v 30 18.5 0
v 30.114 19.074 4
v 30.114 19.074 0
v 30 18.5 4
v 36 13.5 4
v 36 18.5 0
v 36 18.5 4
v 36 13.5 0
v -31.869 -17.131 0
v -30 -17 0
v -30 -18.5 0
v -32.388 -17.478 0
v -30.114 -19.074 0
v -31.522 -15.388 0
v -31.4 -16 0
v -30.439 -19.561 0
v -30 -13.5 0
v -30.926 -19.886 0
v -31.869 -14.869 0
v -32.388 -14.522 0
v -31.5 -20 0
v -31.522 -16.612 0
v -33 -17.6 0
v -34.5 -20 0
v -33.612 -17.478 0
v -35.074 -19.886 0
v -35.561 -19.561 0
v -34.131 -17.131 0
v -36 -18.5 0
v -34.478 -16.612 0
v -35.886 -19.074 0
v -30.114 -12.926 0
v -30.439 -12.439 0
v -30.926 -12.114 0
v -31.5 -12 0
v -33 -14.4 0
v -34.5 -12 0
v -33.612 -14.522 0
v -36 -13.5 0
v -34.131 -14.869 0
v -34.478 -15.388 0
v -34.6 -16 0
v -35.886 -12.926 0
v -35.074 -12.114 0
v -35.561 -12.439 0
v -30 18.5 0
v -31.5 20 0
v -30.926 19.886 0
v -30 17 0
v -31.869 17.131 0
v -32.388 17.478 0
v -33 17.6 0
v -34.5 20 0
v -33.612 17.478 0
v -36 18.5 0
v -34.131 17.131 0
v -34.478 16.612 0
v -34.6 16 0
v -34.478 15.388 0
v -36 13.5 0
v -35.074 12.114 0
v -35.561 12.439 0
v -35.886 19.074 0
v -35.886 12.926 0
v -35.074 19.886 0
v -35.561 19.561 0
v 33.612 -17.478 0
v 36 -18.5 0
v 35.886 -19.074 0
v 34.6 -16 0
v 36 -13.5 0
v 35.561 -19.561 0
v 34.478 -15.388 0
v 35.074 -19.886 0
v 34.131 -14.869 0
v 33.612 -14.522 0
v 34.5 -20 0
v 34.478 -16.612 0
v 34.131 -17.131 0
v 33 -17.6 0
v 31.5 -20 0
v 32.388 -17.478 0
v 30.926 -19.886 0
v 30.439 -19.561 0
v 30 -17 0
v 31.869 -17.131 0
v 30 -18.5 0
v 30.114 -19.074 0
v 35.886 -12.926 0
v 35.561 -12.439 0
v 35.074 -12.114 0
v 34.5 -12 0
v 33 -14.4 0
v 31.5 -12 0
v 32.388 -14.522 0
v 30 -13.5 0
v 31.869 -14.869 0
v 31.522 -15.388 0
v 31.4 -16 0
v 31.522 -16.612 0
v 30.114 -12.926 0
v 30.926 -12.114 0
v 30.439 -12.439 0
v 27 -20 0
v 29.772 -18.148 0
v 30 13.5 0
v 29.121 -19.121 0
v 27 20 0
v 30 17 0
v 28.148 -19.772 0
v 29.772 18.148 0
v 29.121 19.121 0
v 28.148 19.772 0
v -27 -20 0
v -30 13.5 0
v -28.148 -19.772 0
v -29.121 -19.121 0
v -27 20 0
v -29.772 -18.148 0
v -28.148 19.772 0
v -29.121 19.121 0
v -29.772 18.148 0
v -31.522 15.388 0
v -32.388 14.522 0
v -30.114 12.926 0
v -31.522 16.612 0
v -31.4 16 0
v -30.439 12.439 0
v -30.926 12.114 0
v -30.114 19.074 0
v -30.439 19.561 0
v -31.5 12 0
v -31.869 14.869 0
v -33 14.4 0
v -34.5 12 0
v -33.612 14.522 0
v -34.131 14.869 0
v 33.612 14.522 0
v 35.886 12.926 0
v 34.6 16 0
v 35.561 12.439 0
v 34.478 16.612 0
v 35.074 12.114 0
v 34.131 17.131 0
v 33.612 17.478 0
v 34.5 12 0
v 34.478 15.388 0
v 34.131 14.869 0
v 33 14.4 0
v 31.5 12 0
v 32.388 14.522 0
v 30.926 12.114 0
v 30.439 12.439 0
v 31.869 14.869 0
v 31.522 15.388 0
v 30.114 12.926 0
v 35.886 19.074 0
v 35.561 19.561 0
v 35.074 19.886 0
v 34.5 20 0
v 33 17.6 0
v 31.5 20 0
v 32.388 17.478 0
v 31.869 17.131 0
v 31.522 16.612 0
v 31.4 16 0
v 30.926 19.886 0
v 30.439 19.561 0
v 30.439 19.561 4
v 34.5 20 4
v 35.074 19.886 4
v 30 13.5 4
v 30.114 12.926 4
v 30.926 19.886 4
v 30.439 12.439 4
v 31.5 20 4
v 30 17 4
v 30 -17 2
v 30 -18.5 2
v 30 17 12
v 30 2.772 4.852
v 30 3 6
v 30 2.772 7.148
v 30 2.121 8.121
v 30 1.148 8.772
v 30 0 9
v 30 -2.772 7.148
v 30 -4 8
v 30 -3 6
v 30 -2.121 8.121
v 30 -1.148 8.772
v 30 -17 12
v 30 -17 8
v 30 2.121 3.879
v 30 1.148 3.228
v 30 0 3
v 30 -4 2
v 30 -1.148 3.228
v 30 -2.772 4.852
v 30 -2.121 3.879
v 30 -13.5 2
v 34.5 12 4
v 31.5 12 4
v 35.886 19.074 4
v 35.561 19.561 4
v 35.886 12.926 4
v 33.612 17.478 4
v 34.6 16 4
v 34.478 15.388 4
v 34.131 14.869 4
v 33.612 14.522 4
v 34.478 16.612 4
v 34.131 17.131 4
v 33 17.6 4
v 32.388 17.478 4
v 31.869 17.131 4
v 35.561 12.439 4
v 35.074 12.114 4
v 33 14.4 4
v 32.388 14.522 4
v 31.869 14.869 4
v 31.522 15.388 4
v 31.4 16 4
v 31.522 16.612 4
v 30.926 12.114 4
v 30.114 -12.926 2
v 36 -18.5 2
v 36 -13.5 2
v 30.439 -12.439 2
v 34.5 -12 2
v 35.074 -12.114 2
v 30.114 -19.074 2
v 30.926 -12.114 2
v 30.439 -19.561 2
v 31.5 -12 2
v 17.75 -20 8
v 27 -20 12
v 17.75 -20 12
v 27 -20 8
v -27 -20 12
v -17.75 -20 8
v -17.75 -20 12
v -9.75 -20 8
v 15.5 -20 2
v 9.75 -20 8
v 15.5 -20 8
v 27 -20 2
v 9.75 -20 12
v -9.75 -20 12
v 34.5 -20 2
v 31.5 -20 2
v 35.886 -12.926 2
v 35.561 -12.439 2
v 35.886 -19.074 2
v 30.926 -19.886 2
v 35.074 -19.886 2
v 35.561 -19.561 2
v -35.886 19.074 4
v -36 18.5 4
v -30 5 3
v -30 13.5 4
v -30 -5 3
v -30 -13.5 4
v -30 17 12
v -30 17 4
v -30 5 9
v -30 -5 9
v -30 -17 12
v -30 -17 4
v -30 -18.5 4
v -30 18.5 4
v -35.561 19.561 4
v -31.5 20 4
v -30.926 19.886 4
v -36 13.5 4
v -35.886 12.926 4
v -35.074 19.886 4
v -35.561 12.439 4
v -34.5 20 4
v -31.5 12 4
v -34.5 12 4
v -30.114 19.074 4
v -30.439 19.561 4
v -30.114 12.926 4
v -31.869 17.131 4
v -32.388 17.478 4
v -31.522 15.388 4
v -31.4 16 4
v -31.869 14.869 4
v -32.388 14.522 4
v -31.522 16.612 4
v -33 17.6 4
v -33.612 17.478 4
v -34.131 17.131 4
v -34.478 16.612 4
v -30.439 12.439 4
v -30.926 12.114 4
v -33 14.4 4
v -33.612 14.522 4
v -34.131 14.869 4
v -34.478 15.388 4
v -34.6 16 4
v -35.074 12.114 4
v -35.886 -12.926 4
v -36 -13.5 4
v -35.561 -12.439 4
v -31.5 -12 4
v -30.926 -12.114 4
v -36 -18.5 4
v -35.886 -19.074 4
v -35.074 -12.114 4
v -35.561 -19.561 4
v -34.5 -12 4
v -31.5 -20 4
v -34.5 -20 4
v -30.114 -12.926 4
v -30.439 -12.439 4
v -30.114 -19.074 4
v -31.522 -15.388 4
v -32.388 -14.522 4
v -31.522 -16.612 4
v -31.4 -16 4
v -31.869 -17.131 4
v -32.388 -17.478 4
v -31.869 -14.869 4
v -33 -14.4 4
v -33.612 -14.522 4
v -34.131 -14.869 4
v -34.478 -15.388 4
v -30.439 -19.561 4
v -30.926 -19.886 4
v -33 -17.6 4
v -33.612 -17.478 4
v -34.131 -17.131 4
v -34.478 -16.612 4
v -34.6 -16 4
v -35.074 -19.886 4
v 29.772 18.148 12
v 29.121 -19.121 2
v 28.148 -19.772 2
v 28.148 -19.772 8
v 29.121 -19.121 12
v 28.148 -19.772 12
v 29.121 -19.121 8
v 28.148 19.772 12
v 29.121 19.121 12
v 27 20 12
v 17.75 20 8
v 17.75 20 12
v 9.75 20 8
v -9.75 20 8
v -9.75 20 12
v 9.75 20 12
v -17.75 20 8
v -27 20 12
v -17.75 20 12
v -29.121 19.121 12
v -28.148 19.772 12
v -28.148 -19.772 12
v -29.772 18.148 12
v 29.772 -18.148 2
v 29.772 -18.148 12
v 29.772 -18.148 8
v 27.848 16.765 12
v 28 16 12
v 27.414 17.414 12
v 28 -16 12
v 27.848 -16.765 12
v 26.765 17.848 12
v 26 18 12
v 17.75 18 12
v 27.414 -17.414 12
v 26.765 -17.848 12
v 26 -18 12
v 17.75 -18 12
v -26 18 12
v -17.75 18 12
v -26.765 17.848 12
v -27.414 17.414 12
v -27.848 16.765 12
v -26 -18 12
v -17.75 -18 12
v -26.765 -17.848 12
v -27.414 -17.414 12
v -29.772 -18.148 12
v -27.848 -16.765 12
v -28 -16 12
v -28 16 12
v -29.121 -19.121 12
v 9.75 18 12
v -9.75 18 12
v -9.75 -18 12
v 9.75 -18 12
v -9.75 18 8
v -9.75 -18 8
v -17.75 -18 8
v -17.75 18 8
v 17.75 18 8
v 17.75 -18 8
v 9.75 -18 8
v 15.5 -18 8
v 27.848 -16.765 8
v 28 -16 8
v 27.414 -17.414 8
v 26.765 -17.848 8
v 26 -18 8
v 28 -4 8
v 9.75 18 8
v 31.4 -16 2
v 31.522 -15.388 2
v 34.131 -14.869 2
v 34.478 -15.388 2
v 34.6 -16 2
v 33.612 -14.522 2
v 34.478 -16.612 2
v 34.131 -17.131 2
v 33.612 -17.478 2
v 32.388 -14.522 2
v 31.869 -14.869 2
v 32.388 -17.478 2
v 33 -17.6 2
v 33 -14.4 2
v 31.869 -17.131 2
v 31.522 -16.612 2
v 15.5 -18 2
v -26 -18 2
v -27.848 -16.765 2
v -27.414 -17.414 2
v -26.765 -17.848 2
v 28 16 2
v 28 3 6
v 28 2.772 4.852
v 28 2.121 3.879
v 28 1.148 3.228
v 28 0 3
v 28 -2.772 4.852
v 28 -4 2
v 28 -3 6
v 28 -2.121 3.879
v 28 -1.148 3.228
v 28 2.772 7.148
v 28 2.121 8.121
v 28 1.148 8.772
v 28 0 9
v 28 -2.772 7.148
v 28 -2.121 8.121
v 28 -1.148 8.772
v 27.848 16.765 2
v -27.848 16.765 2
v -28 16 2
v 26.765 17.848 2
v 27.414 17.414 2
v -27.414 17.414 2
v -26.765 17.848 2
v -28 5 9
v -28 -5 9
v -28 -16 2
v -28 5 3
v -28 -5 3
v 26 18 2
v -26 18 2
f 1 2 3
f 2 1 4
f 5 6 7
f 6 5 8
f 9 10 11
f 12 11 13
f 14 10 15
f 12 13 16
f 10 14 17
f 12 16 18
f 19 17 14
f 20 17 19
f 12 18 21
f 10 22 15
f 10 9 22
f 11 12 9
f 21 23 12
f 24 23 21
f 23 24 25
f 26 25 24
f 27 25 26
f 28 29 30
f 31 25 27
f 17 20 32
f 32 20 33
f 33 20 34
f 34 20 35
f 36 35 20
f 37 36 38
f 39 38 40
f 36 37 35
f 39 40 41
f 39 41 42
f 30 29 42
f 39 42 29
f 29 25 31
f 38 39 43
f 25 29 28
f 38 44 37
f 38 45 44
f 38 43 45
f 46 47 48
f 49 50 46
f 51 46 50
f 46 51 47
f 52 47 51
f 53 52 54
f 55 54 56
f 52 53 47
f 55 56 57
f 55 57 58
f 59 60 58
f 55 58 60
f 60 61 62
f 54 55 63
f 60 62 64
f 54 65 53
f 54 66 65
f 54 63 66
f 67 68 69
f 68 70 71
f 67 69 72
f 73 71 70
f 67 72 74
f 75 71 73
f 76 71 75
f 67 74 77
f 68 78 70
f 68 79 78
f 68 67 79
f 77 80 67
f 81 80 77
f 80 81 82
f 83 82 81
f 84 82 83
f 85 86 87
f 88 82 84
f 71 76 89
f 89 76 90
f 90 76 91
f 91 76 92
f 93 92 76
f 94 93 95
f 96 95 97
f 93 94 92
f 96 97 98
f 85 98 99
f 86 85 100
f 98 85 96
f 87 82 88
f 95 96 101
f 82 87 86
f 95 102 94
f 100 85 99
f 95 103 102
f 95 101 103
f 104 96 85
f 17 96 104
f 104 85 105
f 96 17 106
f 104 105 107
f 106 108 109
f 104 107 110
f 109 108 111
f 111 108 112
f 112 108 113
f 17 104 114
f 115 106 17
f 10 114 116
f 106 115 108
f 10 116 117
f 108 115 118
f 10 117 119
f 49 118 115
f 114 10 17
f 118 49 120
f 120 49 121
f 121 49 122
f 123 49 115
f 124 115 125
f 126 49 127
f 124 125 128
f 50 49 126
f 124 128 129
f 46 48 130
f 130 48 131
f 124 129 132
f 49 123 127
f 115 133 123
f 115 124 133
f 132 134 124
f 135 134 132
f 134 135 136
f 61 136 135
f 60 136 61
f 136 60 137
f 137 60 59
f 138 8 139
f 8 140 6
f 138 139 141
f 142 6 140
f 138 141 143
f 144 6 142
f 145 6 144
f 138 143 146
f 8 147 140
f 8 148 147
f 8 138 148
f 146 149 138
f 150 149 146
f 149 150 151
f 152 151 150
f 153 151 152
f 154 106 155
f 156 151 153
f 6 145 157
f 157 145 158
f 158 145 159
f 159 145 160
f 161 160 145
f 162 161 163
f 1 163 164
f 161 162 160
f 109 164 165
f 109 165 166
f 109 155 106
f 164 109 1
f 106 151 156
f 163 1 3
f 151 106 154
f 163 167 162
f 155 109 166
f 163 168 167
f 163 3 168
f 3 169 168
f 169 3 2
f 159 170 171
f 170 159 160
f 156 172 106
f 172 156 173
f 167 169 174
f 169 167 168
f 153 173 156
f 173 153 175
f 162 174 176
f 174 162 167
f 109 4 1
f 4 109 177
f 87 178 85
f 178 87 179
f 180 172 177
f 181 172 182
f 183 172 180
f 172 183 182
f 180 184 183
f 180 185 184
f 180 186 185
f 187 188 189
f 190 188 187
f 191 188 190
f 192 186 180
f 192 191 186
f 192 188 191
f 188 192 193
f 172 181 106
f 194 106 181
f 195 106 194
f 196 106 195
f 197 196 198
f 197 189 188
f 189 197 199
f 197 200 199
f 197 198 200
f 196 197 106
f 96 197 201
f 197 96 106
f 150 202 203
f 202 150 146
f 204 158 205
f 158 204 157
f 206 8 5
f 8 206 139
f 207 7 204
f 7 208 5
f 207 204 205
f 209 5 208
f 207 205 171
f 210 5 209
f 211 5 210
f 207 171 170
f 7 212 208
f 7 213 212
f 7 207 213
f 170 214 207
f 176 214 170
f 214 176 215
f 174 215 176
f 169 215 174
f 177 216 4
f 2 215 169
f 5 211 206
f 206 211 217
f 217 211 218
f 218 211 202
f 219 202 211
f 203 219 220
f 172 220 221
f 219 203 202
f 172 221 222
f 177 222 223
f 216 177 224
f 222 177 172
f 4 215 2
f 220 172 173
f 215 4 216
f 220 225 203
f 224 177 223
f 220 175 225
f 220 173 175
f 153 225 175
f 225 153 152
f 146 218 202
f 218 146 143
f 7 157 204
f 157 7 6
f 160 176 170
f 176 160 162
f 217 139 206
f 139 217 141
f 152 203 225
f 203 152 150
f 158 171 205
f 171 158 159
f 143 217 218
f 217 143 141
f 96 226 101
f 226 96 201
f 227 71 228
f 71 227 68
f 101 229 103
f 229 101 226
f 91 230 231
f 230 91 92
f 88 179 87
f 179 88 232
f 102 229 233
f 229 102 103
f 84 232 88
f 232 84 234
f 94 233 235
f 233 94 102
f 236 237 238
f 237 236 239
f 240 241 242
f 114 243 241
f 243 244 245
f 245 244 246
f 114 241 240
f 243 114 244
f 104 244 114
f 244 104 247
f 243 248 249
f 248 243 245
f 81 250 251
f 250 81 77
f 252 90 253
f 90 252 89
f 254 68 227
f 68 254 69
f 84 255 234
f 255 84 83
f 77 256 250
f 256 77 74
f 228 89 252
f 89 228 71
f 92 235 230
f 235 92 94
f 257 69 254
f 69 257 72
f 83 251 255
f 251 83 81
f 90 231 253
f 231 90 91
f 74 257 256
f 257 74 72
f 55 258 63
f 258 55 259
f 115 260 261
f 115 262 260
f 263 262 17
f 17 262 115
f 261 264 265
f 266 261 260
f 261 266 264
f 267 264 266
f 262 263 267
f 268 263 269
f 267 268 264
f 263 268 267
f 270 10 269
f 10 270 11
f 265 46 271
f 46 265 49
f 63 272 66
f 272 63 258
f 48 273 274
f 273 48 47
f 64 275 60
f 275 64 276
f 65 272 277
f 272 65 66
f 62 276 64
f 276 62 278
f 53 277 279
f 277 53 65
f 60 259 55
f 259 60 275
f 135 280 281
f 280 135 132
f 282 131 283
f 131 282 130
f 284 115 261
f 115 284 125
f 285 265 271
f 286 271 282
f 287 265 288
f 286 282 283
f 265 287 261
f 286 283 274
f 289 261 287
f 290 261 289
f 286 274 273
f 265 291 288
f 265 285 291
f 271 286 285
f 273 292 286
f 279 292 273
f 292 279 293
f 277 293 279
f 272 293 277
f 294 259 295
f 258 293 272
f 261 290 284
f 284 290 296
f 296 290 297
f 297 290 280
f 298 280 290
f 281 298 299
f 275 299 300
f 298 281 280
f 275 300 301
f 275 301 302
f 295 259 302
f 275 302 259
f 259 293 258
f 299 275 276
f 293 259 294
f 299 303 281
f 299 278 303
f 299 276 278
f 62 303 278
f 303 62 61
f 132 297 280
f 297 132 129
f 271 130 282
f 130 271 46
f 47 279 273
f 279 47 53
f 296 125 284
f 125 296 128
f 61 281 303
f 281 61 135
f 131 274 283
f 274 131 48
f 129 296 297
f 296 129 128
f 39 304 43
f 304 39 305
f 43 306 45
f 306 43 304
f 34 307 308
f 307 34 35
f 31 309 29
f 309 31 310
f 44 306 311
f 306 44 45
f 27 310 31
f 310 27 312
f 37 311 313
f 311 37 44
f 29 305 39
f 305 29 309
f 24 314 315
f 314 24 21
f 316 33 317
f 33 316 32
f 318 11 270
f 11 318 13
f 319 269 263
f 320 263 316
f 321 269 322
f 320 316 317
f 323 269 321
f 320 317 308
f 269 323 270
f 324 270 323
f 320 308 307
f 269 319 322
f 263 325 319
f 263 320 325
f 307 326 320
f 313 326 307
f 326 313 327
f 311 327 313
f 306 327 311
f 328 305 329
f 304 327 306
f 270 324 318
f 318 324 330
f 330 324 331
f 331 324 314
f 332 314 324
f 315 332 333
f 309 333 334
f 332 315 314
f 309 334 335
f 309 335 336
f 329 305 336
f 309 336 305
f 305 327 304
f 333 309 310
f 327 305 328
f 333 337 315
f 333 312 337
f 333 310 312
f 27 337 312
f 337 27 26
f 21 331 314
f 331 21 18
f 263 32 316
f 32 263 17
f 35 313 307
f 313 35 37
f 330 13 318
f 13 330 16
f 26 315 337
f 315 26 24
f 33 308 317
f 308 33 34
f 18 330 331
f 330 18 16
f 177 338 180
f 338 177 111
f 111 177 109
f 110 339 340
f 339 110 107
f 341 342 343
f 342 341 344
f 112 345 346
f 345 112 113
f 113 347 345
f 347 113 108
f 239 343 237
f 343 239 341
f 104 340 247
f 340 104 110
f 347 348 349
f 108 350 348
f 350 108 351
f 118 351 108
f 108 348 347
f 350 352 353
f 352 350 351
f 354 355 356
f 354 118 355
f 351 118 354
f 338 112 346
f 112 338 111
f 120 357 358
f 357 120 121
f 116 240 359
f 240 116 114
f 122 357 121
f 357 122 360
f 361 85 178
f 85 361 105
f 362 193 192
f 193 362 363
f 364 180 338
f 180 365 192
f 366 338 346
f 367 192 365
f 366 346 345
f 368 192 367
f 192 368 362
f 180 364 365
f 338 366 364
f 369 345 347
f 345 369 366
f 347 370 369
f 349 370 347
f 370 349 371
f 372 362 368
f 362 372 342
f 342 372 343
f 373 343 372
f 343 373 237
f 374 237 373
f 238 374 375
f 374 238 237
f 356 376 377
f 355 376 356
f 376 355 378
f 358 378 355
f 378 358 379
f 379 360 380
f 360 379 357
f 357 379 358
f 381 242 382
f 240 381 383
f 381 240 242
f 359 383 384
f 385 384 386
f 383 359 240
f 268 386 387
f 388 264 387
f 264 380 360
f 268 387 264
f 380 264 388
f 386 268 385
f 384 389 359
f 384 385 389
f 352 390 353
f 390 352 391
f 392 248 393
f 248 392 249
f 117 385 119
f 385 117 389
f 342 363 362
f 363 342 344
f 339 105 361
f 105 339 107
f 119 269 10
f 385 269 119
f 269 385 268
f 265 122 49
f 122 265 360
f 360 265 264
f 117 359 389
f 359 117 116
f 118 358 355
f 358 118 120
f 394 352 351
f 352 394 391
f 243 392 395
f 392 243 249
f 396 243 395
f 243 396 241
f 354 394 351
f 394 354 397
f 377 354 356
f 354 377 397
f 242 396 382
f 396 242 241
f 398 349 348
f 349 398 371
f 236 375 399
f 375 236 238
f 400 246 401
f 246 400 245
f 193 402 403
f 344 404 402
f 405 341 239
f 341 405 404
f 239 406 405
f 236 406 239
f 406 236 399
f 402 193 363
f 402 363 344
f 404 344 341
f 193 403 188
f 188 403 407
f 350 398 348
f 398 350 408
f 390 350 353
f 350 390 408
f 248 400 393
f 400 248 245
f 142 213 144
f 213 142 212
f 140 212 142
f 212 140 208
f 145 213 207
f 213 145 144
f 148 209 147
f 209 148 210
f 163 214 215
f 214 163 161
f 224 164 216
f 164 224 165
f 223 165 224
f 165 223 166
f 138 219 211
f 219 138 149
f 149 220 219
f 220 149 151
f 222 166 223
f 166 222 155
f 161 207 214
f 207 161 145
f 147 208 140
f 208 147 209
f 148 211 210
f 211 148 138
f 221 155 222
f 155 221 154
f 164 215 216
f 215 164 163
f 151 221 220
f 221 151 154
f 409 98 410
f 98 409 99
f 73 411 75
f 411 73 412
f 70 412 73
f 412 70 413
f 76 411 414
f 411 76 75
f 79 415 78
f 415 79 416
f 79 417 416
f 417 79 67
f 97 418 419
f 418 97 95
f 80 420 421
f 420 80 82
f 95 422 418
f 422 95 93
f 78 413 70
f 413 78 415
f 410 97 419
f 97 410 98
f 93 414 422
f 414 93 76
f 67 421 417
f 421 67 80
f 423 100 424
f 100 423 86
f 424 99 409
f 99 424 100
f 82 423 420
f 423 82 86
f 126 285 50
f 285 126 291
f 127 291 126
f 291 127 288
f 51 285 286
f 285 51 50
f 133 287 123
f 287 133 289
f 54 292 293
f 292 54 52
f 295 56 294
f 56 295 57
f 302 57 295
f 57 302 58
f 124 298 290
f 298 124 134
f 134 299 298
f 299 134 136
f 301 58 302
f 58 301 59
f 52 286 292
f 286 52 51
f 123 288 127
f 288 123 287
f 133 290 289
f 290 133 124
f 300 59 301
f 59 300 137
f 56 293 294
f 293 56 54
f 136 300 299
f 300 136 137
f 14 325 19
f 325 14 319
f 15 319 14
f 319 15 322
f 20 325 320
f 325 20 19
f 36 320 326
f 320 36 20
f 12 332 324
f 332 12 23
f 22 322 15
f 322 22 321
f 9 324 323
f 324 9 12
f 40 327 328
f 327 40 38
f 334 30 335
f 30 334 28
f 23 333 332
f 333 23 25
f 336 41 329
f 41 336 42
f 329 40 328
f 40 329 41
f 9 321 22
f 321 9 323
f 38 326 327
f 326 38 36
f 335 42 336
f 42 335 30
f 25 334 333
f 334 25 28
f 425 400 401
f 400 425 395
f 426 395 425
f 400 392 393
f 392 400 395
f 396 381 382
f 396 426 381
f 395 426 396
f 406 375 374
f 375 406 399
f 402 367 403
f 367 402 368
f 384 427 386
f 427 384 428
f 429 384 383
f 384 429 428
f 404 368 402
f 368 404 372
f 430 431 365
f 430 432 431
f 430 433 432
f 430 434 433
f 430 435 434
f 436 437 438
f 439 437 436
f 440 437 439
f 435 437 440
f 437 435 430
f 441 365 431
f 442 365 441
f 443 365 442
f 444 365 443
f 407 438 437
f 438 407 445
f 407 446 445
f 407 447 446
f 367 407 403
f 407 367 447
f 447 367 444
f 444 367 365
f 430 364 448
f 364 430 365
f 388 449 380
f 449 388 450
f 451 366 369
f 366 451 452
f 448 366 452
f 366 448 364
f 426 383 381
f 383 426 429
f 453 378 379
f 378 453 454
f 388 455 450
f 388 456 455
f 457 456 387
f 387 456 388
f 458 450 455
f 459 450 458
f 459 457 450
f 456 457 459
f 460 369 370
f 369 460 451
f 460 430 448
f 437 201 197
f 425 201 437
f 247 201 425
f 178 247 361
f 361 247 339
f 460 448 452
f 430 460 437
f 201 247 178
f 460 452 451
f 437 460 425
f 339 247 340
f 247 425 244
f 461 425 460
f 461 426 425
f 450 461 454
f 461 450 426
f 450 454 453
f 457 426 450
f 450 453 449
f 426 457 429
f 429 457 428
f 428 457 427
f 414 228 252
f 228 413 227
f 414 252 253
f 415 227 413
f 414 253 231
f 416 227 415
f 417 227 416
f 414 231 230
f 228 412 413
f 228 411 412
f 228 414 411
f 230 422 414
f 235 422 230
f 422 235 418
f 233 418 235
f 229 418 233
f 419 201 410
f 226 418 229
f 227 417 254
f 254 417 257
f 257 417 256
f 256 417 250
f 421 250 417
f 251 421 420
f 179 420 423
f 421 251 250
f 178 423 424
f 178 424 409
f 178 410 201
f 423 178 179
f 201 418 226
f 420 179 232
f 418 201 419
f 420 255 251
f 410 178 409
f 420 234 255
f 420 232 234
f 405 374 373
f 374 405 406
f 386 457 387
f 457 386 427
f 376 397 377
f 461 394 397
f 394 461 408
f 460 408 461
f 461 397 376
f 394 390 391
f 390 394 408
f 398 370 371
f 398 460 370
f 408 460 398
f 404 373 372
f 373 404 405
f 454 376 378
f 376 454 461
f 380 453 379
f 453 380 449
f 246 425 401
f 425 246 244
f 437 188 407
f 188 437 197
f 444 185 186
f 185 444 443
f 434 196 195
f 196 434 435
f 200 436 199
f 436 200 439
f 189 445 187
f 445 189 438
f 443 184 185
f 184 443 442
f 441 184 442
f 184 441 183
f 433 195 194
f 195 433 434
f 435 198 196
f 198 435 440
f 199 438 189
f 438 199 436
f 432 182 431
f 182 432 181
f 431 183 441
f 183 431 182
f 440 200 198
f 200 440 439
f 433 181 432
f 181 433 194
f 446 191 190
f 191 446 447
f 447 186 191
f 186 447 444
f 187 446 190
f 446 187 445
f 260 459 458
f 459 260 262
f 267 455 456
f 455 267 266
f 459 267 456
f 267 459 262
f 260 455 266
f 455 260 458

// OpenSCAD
// Kagami Orb V3.1 — Battery Cradle (VERIFIED DIMENSIONS)
// ========================================================
// Holds 2200mAh 3S LiPo battery (revised from 4000mAh)
// Material: Tough 2000 (impact resistant)
// Print: Form 4, 50μm layer height
//
// VERIFIED SOURCES:
// - Battery search: HobbyKing, GensTattu, TyphonPower
// - 4000mAh minimum: 131×43×24mm (TOO LARGE for 65mm frame!)
// - 2200mAh typical: 55×35×20mm (FITS)

/* [Battery Parameters - 2200mAh 3S VERIFIED] */
// Verified: Compact 3S LiPo that fits 65mm frame
battery_length = 55;              // VERIFIED max that fits
battery_width = 35;               // VERIFIED
battery_height = 20;              // VERIFIED
battery_tolerance = 0.5;          // Fit tolerance

/* [Cradle Parameters] */
cradle_wall = 2;                  // Wall thickness
cradle_floor = 2;                 // Base thickness
foam_recess = 1;                  // Foam padding depth

/* [BMS Integration] */
// BQ25895 + BQ40Z50 board area
bms_length = 25;
bms_width = 15;
bms_height = 5;

/* [Retention Features] */
strap_slot_width = 8;             // Velcro strap slots
strap_slot_depth = 2;
strap_count = 2;

/* [Mounting] */
mount_hole_diameter = 3.2;        // M3 clearance
mount_hole_count = 4;
mount_tab_width = 8;
mount_tab_length = 6;

/* [Wire Routing] */
wire_channel_diameter = 6;        // Main power wires
balance_channel_width = 10;       // Balance connector

// ============================================================
// DERIVED DIMENSIONS
// ============================================================
cradle_length = battery_length + battery_tolerance * 2 + cradle_wall * 2;
cradle_width = battery_width + battery_tolerance * 2 + cradle_wall * 2;
cradle_height = battery_height / 2 + cradle_floor; // Half-wrap design

// ============================================================
// MAIN MODULE
// ============================================================
module battery_cradle() {
    difference() {
        union() {
            // Main cradle body
            hull() {
                translate([0, 0, 0])
                    rounded_box([cradle_length, cradle_width, cradle_height], r=3);
            }
            
            // Mounting tabs
            mounting_tabs();
        }
        
        // Battery pocket
        translate([0, 0, cradle_floor])
            rounded_box([battery_length + battery_tolerance*2, 
                        battery_width + battery_tolerance*2, 
                        battery_height], r=2);
        
        // Foam padding recesses
        translate([0, 0, cradle_floor])
            rounded_box([battery_length - 4, 
                        battery_width - 4, 
                        foam_recess + 0.1], r=1);
        
        // Strap slots
        for (i = [0:strap_count-1]) {
            x_pos = (i - (strap_count-1)/2) * (battery_length / 2);
            translate([x_pos, 0, cradle_height - strap_slot_depth])
                cube([strap_slot_width, cradle_width + 2, strap_slot_depth * 2], center=true);
        }
        
        // BMS pocket (side)
        translate([cradle_length/2 - bms_length/2 - cradle_wall, 
                  -cradle_width/2, 
                  cradle_floor])
            cube([bms_length + 1, bms_width + 1, bms_height + 1]);
        
        // Wire channel (main power)
        translate([cradle_length/2, 0, cradle_height/2])
            rotate([0, 90, 0])
            cylinder(h=cradle_wall * 2 + 1, d=wire_channel_diameter, center=true, $fn=16);
        
        // Balance connector channel
        translate([-cradle_length/2, 0, cradle_height/2])
            rotate([0, 90, 0])
            cube([6, balance_channel_width, cradle_wall * 2 + 1], center=true);
        
        // Mounting holes
        mount_holes();
    }
}

// ============================================================
// MOUNTING
// ============================================================
module mounting_tabs() {
    positions = [
        [cradle_length/2 + mount_tab_length/2, cradle_width/2 - mount_tab_width/2, 0],
        [cradle_length/2 + mount_tab_length/2, -cradle_width/2 + mount_tab_width/2, 0],
        [-cradle_length/2 - mount_tab_length/2, cradle_width/2 - mount_tab_width/2, 0],
        [-cradle_length/2 - mount_tab_length/2, -cradle_width/2 + mount_tab_width/2, 0]
    ];
    
    for (pos = positions) {
        translate(pos)
            rounded_box([mount_tab_length, mount_tab_width, cradle_floor + 2], r=1.5);
    }
}

module mount_holes() {
    positions = [
        [cradle_length/2 + mount_tab_length/2, cradle_width/2 - mount_tab_width/2],
        [cradle_length/2 + mount_tab_length/2, -cradle_width/2 + mount_tab_width/2],
        [-cradle_length/2 - mount_tab_length/2, cradle_width/2 - mount_tab_width/2],
        [-cradle_length/2 - mount_tab_length/2, -cradle_width/2 + mount_tab_width/2]
    ];
    
    for (pos = positions) {
        translate([pos[0], pos[1], -0.1])
            cylinder(h=cradle_floor + 3, d=mount_hole_diameter, $fn=16);
    }
}

// ============================================================
// HELPER MODULES
// ============================================================
module rounded_box(size, r=2) {
    hull() {
        for (x = [-1, 1]) {
            for (y = [-1, 1]) {
                translate([x * (size[0]/2 - r), y * (size[1]/2 - r), 0])
                    cylinder(h=size[2], r=r, $fn=16);
            }
        }
    }
}

// ============================================================
// RENDER
// ============================================================
battery_cradle();

// ============================================================
// VERIFICATION
// ============================================================
echo("=== BATTERY CRADLE VERIFICATION ===");
echo(str("Battery: ", battery_length, " × ", battery_width, " × ", battery_height, "mm (2200mAh 3S)"));
echo(str("Cradle OD: ", cradle_length, " × ", cradle_width, "mm"));
echo(str("Fits in 65mm frame? ", max(cradle_length, cradle_width) < 65 ? "YES ✓" : "NO ✗"));
echo(str("Energy: ~24Wh (2200mAh × 11.1V)"));
echo("");
echo("NOTE: 4000mAh batteries are 131mm+ long - WON'T FIT!");
echo("This design uses 2200mAh (55mm) - the largest that fits.");
